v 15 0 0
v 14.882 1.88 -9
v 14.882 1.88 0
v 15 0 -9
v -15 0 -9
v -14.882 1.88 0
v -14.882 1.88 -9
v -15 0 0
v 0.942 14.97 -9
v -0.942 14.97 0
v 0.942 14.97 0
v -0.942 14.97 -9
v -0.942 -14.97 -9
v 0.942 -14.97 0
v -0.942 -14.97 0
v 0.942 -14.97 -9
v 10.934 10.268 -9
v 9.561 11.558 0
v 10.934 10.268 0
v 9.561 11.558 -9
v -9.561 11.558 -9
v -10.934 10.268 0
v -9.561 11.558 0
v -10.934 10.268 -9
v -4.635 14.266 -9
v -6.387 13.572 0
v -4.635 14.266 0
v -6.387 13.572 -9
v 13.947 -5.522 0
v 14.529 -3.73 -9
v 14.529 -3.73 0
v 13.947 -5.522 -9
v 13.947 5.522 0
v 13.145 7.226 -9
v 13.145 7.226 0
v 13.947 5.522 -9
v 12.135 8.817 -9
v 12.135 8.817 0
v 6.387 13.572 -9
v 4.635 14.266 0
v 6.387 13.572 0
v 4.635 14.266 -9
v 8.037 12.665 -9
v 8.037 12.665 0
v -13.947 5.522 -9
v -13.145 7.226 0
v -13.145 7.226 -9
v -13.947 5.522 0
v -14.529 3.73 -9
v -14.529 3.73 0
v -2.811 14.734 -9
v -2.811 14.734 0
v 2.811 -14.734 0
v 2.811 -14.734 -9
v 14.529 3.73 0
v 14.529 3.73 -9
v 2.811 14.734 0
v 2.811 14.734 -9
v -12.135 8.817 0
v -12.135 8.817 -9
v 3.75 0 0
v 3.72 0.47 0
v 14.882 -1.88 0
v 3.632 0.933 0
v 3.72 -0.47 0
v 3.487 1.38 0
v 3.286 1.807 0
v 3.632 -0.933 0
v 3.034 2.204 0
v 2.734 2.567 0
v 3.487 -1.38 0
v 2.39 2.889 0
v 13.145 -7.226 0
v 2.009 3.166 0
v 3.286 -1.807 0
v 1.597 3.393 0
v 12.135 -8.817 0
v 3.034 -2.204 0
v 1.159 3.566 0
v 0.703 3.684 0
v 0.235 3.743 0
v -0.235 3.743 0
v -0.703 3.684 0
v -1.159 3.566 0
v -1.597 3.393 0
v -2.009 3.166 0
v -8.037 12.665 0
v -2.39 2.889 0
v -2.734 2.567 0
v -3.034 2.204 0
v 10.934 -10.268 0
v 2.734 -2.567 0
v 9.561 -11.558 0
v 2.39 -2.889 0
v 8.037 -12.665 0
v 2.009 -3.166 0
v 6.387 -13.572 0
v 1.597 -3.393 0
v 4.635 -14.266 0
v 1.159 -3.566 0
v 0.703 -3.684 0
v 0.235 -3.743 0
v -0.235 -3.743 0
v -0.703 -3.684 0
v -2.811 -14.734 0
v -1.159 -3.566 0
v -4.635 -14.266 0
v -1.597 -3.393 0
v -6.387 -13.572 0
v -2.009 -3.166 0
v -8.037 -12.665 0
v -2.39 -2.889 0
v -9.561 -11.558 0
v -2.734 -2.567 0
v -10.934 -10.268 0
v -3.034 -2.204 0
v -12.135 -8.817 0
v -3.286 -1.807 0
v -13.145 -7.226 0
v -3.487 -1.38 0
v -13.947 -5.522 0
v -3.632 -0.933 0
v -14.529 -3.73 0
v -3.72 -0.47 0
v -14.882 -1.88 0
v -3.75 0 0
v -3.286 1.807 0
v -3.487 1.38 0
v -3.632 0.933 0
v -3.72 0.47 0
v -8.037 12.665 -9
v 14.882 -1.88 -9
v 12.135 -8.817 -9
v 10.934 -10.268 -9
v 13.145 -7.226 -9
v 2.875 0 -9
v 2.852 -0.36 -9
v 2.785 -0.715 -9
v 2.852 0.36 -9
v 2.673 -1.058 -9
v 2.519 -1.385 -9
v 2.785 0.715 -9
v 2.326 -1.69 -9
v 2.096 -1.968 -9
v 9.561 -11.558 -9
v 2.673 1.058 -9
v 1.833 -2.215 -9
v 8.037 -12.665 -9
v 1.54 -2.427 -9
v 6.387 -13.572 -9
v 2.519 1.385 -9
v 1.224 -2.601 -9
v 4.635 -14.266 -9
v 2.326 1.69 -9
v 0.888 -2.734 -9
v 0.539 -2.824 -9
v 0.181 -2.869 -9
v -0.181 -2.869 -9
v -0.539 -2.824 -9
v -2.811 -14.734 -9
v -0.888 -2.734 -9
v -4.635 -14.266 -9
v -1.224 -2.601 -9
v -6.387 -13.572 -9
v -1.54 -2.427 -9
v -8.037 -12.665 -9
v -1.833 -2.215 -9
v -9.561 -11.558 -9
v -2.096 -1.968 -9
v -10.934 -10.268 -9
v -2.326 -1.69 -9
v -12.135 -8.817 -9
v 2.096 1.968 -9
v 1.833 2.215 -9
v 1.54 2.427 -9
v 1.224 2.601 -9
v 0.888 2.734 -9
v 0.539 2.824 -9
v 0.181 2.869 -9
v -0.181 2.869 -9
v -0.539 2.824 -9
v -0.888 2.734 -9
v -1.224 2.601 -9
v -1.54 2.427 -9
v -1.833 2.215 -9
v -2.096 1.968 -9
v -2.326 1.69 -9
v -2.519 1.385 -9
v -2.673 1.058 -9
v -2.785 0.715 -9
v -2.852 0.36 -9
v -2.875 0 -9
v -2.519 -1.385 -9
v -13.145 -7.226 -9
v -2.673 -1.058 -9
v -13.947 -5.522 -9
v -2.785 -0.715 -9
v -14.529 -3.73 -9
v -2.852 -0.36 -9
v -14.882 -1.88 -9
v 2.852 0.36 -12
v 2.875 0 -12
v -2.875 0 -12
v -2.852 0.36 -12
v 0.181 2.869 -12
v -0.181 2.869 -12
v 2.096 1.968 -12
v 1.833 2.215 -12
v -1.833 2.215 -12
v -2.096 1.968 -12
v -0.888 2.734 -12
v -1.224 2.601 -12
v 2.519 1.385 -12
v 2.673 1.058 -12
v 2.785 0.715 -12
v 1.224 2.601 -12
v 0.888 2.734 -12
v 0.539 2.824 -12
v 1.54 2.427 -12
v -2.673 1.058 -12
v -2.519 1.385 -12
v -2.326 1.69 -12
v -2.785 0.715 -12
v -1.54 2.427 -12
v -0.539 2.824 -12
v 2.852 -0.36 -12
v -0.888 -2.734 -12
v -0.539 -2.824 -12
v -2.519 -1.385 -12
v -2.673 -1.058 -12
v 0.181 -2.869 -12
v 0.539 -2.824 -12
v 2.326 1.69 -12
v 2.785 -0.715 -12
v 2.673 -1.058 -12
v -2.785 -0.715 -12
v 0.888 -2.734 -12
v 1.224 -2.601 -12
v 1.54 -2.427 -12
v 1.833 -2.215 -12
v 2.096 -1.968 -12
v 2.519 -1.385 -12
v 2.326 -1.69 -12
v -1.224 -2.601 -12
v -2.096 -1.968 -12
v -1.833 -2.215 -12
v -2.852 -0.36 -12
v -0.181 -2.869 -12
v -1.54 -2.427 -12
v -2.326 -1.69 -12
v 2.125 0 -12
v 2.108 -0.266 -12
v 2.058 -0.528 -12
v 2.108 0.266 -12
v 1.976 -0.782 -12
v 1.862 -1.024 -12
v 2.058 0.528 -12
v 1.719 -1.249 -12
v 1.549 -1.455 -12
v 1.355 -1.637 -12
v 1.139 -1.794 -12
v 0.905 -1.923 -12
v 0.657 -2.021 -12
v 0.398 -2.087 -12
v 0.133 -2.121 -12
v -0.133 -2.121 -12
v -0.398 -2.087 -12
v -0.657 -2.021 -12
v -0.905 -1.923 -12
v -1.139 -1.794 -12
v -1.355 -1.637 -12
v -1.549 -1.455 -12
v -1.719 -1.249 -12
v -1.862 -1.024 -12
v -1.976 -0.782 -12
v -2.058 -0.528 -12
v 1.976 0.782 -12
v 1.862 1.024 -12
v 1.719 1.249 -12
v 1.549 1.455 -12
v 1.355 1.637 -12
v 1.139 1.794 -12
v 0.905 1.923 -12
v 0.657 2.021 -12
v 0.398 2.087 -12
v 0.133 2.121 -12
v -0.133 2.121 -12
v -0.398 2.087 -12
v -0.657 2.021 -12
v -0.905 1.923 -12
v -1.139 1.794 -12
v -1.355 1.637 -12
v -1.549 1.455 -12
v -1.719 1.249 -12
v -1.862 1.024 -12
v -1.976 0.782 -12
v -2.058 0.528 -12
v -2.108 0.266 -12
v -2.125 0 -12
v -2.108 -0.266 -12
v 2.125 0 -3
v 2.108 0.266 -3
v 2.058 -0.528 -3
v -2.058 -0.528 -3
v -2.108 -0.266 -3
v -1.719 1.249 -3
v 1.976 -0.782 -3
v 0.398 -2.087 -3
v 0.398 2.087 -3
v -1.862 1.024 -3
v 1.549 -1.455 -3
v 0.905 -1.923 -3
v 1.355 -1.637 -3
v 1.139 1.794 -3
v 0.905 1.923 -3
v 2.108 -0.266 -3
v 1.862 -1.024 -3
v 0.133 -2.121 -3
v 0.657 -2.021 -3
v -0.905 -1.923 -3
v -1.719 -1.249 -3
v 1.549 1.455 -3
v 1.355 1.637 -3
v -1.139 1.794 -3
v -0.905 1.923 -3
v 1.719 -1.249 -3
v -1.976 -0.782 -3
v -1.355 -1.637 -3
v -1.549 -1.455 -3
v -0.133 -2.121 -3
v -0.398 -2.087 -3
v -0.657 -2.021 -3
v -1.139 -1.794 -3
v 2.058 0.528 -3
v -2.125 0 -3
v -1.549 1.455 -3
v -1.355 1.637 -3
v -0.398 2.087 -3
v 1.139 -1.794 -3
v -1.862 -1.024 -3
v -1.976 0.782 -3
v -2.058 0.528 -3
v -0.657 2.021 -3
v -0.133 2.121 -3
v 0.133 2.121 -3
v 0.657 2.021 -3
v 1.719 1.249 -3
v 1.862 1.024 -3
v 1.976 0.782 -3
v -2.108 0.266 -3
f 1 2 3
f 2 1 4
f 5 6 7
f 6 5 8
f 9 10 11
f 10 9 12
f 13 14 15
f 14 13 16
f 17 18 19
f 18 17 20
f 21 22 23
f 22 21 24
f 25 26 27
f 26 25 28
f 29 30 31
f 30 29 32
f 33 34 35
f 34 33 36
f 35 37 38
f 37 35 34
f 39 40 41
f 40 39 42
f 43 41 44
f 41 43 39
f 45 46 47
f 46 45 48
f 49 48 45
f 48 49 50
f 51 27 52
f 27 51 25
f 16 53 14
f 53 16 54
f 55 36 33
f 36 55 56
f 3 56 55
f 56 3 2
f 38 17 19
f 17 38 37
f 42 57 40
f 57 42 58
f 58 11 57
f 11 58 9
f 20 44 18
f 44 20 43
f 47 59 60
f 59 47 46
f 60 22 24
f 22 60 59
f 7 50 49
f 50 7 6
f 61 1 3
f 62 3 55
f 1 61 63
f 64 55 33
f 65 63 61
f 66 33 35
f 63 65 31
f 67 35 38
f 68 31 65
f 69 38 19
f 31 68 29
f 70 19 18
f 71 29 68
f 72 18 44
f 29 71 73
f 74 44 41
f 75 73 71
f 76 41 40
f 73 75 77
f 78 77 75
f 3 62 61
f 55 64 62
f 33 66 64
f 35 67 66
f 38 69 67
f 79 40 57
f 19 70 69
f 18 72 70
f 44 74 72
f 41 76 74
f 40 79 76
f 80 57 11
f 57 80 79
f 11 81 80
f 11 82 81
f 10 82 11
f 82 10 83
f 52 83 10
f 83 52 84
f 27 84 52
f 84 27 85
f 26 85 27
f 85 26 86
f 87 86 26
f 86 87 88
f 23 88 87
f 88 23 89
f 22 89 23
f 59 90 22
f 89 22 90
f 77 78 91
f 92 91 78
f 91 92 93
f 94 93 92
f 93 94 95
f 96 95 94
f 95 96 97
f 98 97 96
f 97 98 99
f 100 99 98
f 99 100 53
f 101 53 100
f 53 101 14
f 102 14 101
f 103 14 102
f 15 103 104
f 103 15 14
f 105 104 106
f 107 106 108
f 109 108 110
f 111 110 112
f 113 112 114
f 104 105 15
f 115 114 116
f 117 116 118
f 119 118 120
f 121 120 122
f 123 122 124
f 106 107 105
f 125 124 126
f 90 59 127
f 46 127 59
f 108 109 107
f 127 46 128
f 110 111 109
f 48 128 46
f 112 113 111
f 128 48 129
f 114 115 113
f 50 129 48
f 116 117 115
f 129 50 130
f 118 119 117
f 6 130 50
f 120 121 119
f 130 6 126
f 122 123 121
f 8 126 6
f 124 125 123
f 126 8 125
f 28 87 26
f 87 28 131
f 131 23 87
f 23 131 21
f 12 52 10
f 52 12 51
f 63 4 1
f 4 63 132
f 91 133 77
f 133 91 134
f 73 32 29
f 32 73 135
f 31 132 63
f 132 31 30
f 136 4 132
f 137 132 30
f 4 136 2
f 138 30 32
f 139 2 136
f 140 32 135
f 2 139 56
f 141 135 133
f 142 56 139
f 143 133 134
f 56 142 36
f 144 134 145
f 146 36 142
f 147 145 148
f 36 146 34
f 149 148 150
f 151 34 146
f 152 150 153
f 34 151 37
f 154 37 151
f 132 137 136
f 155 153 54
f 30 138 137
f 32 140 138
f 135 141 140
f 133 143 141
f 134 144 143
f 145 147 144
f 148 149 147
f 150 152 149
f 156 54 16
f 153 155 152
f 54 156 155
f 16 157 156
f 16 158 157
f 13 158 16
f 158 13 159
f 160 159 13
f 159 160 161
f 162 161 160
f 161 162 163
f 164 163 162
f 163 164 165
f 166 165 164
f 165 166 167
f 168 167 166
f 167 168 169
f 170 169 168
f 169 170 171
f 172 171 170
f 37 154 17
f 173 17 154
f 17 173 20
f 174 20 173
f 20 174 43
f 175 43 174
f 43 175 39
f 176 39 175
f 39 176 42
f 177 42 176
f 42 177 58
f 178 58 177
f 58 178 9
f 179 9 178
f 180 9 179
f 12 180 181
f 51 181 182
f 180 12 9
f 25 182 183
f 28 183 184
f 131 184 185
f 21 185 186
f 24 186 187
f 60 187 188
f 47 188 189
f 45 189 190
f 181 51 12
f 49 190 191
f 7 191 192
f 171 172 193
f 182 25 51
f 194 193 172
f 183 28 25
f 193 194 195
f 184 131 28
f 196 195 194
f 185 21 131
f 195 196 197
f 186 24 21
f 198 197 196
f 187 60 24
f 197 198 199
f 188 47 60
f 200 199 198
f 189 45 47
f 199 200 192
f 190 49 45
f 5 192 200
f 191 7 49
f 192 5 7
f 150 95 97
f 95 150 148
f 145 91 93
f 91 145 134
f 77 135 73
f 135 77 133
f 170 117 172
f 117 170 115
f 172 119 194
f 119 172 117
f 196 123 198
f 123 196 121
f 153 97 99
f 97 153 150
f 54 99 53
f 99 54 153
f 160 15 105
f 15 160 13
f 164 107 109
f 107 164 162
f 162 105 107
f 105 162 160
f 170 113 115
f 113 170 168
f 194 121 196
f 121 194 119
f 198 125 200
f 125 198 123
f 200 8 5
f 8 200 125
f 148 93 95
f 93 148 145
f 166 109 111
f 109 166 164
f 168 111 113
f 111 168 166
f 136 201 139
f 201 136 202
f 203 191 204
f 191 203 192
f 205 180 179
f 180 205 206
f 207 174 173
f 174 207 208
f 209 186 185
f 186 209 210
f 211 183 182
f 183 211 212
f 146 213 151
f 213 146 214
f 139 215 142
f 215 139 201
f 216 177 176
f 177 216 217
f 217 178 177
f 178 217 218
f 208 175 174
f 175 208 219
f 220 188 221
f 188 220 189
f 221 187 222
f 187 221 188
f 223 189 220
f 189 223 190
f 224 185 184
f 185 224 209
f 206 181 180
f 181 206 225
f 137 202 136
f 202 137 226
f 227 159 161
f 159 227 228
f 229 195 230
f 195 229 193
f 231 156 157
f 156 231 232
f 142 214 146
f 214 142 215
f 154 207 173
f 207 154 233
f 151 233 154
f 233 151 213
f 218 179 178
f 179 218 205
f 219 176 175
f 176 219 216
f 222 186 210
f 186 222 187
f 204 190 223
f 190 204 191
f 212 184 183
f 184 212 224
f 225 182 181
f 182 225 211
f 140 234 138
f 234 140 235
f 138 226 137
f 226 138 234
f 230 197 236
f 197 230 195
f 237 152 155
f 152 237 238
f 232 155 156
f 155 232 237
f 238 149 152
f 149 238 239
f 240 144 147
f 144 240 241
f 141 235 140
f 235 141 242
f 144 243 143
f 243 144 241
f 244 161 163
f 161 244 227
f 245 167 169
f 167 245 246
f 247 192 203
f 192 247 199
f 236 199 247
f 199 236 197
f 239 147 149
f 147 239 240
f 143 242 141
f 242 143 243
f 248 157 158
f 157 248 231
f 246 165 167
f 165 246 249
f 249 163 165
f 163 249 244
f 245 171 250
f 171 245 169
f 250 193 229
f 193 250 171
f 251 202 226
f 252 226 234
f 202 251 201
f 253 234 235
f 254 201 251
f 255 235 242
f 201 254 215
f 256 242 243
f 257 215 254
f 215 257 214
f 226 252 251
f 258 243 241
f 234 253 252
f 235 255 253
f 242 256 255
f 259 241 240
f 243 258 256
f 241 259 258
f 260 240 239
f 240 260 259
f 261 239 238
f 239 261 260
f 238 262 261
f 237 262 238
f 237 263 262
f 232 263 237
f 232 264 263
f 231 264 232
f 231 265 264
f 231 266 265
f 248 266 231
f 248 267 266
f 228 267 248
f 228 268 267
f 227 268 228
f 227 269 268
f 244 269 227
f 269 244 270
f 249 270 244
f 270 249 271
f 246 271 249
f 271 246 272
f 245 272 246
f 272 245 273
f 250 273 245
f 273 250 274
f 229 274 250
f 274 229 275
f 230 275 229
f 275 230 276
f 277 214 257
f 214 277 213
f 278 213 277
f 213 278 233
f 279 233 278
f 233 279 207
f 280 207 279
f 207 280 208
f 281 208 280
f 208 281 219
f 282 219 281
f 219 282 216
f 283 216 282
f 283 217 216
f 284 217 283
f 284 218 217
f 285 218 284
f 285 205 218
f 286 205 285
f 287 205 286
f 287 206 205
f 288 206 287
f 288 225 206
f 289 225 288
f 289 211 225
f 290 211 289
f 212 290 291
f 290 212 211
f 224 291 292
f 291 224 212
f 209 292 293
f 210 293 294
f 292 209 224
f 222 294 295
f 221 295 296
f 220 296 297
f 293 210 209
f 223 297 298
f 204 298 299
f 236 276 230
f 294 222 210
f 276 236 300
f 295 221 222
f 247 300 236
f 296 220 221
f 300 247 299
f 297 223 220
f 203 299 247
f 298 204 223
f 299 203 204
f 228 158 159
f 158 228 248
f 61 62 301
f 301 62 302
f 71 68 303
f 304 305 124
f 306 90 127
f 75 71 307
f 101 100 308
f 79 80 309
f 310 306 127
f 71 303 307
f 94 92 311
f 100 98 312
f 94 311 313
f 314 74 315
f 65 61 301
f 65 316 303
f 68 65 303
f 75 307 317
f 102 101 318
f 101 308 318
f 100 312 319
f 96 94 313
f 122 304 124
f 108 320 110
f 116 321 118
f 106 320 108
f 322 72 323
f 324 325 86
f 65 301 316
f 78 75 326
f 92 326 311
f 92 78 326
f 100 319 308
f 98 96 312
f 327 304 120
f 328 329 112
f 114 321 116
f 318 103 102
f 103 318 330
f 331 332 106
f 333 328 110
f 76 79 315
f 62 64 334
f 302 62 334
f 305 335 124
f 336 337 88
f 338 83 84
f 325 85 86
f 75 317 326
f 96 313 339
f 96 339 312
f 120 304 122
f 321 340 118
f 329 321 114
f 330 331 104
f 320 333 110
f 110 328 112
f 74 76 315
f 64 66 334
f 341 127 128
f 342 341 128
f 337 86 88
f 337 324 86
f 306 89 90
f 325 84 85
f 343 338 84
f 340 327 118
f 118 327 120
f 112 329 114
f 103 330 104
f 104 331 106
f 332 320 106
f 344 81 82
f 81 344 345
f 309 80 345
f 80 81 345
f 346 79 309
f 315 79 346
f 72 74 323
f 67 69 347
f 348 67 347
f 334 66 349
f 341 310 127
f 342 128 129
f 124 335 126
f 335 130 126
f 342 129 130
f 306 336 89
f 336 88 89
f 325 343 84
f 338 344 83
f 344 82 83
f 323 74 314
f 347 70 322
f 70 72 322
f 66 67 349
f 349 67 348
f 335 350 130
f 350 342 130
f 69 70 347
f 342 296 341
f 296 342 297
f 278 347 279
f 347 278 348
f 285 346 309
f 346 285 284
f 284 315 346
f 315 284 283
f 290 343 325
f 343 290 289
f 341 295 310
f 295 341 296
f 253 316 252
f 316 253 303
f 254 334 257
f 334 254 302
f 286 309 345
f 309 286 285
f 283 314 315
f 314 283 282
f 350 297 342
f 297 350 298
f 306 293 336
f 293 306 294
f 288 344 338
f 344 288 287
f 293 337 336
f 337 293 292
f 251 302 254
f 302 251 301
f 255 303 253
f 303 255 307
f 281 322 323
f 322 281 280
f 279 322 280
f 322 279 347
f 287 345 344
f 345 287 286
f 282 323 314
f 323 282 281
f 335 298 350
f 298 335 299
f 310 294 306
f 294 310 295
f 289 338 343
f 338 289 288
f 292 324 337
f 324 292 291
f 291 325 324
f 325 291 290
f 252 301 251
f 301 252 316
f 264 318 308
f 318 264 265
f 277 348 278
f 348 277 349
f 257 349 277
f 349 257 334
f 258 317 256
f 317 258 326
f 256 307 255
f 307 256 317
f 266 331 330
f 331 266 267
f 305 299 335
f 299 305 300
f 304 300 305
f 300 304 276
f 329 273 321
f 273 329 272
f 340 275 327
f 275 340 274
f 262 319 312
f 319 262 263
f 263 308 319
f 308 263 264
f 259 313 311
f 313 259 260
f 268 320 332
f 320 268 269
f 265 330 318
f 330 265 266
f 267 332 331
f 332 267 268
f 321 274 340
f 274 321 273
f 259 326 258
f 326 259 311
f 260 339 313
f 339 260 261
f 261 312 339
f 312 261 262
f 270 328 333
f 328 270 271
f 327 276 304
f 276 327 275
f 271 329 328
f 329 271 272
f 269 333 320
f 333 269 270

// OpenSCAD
$fn = 50;

difference() {
	union() {
		translate(v = [0, 0, -9.0]) {
			cylinder(h = 9, r = 15.0);
		}
		#translate(v = [0, 0, -12.0]) {
			cylinder(h = 12, r = 2.875);
		}
	}
	union() {
		translate(v = [0, 0, 0]) {
			rotate(a = [0, 0, 0]) {
				difference() {
					union() {
						translate(v = [0, 0, -12.0]) {
							cylinder(h = 12, r = 2.0);
						}
						translate(v = [0, 0, -3]) {
							cylinder(h = 3, r1 = 2.125, r2 = 3.75);
						}
						translate(v = [0, 0, -12.0]) {
							cylinder(h = 12, r = 2.125);
						}
						translate(v = [0, 0, -12.0]) {
							cylinder(h = 12, r = 2.0);
						}
					}
					union();
				}
			}
		}
	}
}
